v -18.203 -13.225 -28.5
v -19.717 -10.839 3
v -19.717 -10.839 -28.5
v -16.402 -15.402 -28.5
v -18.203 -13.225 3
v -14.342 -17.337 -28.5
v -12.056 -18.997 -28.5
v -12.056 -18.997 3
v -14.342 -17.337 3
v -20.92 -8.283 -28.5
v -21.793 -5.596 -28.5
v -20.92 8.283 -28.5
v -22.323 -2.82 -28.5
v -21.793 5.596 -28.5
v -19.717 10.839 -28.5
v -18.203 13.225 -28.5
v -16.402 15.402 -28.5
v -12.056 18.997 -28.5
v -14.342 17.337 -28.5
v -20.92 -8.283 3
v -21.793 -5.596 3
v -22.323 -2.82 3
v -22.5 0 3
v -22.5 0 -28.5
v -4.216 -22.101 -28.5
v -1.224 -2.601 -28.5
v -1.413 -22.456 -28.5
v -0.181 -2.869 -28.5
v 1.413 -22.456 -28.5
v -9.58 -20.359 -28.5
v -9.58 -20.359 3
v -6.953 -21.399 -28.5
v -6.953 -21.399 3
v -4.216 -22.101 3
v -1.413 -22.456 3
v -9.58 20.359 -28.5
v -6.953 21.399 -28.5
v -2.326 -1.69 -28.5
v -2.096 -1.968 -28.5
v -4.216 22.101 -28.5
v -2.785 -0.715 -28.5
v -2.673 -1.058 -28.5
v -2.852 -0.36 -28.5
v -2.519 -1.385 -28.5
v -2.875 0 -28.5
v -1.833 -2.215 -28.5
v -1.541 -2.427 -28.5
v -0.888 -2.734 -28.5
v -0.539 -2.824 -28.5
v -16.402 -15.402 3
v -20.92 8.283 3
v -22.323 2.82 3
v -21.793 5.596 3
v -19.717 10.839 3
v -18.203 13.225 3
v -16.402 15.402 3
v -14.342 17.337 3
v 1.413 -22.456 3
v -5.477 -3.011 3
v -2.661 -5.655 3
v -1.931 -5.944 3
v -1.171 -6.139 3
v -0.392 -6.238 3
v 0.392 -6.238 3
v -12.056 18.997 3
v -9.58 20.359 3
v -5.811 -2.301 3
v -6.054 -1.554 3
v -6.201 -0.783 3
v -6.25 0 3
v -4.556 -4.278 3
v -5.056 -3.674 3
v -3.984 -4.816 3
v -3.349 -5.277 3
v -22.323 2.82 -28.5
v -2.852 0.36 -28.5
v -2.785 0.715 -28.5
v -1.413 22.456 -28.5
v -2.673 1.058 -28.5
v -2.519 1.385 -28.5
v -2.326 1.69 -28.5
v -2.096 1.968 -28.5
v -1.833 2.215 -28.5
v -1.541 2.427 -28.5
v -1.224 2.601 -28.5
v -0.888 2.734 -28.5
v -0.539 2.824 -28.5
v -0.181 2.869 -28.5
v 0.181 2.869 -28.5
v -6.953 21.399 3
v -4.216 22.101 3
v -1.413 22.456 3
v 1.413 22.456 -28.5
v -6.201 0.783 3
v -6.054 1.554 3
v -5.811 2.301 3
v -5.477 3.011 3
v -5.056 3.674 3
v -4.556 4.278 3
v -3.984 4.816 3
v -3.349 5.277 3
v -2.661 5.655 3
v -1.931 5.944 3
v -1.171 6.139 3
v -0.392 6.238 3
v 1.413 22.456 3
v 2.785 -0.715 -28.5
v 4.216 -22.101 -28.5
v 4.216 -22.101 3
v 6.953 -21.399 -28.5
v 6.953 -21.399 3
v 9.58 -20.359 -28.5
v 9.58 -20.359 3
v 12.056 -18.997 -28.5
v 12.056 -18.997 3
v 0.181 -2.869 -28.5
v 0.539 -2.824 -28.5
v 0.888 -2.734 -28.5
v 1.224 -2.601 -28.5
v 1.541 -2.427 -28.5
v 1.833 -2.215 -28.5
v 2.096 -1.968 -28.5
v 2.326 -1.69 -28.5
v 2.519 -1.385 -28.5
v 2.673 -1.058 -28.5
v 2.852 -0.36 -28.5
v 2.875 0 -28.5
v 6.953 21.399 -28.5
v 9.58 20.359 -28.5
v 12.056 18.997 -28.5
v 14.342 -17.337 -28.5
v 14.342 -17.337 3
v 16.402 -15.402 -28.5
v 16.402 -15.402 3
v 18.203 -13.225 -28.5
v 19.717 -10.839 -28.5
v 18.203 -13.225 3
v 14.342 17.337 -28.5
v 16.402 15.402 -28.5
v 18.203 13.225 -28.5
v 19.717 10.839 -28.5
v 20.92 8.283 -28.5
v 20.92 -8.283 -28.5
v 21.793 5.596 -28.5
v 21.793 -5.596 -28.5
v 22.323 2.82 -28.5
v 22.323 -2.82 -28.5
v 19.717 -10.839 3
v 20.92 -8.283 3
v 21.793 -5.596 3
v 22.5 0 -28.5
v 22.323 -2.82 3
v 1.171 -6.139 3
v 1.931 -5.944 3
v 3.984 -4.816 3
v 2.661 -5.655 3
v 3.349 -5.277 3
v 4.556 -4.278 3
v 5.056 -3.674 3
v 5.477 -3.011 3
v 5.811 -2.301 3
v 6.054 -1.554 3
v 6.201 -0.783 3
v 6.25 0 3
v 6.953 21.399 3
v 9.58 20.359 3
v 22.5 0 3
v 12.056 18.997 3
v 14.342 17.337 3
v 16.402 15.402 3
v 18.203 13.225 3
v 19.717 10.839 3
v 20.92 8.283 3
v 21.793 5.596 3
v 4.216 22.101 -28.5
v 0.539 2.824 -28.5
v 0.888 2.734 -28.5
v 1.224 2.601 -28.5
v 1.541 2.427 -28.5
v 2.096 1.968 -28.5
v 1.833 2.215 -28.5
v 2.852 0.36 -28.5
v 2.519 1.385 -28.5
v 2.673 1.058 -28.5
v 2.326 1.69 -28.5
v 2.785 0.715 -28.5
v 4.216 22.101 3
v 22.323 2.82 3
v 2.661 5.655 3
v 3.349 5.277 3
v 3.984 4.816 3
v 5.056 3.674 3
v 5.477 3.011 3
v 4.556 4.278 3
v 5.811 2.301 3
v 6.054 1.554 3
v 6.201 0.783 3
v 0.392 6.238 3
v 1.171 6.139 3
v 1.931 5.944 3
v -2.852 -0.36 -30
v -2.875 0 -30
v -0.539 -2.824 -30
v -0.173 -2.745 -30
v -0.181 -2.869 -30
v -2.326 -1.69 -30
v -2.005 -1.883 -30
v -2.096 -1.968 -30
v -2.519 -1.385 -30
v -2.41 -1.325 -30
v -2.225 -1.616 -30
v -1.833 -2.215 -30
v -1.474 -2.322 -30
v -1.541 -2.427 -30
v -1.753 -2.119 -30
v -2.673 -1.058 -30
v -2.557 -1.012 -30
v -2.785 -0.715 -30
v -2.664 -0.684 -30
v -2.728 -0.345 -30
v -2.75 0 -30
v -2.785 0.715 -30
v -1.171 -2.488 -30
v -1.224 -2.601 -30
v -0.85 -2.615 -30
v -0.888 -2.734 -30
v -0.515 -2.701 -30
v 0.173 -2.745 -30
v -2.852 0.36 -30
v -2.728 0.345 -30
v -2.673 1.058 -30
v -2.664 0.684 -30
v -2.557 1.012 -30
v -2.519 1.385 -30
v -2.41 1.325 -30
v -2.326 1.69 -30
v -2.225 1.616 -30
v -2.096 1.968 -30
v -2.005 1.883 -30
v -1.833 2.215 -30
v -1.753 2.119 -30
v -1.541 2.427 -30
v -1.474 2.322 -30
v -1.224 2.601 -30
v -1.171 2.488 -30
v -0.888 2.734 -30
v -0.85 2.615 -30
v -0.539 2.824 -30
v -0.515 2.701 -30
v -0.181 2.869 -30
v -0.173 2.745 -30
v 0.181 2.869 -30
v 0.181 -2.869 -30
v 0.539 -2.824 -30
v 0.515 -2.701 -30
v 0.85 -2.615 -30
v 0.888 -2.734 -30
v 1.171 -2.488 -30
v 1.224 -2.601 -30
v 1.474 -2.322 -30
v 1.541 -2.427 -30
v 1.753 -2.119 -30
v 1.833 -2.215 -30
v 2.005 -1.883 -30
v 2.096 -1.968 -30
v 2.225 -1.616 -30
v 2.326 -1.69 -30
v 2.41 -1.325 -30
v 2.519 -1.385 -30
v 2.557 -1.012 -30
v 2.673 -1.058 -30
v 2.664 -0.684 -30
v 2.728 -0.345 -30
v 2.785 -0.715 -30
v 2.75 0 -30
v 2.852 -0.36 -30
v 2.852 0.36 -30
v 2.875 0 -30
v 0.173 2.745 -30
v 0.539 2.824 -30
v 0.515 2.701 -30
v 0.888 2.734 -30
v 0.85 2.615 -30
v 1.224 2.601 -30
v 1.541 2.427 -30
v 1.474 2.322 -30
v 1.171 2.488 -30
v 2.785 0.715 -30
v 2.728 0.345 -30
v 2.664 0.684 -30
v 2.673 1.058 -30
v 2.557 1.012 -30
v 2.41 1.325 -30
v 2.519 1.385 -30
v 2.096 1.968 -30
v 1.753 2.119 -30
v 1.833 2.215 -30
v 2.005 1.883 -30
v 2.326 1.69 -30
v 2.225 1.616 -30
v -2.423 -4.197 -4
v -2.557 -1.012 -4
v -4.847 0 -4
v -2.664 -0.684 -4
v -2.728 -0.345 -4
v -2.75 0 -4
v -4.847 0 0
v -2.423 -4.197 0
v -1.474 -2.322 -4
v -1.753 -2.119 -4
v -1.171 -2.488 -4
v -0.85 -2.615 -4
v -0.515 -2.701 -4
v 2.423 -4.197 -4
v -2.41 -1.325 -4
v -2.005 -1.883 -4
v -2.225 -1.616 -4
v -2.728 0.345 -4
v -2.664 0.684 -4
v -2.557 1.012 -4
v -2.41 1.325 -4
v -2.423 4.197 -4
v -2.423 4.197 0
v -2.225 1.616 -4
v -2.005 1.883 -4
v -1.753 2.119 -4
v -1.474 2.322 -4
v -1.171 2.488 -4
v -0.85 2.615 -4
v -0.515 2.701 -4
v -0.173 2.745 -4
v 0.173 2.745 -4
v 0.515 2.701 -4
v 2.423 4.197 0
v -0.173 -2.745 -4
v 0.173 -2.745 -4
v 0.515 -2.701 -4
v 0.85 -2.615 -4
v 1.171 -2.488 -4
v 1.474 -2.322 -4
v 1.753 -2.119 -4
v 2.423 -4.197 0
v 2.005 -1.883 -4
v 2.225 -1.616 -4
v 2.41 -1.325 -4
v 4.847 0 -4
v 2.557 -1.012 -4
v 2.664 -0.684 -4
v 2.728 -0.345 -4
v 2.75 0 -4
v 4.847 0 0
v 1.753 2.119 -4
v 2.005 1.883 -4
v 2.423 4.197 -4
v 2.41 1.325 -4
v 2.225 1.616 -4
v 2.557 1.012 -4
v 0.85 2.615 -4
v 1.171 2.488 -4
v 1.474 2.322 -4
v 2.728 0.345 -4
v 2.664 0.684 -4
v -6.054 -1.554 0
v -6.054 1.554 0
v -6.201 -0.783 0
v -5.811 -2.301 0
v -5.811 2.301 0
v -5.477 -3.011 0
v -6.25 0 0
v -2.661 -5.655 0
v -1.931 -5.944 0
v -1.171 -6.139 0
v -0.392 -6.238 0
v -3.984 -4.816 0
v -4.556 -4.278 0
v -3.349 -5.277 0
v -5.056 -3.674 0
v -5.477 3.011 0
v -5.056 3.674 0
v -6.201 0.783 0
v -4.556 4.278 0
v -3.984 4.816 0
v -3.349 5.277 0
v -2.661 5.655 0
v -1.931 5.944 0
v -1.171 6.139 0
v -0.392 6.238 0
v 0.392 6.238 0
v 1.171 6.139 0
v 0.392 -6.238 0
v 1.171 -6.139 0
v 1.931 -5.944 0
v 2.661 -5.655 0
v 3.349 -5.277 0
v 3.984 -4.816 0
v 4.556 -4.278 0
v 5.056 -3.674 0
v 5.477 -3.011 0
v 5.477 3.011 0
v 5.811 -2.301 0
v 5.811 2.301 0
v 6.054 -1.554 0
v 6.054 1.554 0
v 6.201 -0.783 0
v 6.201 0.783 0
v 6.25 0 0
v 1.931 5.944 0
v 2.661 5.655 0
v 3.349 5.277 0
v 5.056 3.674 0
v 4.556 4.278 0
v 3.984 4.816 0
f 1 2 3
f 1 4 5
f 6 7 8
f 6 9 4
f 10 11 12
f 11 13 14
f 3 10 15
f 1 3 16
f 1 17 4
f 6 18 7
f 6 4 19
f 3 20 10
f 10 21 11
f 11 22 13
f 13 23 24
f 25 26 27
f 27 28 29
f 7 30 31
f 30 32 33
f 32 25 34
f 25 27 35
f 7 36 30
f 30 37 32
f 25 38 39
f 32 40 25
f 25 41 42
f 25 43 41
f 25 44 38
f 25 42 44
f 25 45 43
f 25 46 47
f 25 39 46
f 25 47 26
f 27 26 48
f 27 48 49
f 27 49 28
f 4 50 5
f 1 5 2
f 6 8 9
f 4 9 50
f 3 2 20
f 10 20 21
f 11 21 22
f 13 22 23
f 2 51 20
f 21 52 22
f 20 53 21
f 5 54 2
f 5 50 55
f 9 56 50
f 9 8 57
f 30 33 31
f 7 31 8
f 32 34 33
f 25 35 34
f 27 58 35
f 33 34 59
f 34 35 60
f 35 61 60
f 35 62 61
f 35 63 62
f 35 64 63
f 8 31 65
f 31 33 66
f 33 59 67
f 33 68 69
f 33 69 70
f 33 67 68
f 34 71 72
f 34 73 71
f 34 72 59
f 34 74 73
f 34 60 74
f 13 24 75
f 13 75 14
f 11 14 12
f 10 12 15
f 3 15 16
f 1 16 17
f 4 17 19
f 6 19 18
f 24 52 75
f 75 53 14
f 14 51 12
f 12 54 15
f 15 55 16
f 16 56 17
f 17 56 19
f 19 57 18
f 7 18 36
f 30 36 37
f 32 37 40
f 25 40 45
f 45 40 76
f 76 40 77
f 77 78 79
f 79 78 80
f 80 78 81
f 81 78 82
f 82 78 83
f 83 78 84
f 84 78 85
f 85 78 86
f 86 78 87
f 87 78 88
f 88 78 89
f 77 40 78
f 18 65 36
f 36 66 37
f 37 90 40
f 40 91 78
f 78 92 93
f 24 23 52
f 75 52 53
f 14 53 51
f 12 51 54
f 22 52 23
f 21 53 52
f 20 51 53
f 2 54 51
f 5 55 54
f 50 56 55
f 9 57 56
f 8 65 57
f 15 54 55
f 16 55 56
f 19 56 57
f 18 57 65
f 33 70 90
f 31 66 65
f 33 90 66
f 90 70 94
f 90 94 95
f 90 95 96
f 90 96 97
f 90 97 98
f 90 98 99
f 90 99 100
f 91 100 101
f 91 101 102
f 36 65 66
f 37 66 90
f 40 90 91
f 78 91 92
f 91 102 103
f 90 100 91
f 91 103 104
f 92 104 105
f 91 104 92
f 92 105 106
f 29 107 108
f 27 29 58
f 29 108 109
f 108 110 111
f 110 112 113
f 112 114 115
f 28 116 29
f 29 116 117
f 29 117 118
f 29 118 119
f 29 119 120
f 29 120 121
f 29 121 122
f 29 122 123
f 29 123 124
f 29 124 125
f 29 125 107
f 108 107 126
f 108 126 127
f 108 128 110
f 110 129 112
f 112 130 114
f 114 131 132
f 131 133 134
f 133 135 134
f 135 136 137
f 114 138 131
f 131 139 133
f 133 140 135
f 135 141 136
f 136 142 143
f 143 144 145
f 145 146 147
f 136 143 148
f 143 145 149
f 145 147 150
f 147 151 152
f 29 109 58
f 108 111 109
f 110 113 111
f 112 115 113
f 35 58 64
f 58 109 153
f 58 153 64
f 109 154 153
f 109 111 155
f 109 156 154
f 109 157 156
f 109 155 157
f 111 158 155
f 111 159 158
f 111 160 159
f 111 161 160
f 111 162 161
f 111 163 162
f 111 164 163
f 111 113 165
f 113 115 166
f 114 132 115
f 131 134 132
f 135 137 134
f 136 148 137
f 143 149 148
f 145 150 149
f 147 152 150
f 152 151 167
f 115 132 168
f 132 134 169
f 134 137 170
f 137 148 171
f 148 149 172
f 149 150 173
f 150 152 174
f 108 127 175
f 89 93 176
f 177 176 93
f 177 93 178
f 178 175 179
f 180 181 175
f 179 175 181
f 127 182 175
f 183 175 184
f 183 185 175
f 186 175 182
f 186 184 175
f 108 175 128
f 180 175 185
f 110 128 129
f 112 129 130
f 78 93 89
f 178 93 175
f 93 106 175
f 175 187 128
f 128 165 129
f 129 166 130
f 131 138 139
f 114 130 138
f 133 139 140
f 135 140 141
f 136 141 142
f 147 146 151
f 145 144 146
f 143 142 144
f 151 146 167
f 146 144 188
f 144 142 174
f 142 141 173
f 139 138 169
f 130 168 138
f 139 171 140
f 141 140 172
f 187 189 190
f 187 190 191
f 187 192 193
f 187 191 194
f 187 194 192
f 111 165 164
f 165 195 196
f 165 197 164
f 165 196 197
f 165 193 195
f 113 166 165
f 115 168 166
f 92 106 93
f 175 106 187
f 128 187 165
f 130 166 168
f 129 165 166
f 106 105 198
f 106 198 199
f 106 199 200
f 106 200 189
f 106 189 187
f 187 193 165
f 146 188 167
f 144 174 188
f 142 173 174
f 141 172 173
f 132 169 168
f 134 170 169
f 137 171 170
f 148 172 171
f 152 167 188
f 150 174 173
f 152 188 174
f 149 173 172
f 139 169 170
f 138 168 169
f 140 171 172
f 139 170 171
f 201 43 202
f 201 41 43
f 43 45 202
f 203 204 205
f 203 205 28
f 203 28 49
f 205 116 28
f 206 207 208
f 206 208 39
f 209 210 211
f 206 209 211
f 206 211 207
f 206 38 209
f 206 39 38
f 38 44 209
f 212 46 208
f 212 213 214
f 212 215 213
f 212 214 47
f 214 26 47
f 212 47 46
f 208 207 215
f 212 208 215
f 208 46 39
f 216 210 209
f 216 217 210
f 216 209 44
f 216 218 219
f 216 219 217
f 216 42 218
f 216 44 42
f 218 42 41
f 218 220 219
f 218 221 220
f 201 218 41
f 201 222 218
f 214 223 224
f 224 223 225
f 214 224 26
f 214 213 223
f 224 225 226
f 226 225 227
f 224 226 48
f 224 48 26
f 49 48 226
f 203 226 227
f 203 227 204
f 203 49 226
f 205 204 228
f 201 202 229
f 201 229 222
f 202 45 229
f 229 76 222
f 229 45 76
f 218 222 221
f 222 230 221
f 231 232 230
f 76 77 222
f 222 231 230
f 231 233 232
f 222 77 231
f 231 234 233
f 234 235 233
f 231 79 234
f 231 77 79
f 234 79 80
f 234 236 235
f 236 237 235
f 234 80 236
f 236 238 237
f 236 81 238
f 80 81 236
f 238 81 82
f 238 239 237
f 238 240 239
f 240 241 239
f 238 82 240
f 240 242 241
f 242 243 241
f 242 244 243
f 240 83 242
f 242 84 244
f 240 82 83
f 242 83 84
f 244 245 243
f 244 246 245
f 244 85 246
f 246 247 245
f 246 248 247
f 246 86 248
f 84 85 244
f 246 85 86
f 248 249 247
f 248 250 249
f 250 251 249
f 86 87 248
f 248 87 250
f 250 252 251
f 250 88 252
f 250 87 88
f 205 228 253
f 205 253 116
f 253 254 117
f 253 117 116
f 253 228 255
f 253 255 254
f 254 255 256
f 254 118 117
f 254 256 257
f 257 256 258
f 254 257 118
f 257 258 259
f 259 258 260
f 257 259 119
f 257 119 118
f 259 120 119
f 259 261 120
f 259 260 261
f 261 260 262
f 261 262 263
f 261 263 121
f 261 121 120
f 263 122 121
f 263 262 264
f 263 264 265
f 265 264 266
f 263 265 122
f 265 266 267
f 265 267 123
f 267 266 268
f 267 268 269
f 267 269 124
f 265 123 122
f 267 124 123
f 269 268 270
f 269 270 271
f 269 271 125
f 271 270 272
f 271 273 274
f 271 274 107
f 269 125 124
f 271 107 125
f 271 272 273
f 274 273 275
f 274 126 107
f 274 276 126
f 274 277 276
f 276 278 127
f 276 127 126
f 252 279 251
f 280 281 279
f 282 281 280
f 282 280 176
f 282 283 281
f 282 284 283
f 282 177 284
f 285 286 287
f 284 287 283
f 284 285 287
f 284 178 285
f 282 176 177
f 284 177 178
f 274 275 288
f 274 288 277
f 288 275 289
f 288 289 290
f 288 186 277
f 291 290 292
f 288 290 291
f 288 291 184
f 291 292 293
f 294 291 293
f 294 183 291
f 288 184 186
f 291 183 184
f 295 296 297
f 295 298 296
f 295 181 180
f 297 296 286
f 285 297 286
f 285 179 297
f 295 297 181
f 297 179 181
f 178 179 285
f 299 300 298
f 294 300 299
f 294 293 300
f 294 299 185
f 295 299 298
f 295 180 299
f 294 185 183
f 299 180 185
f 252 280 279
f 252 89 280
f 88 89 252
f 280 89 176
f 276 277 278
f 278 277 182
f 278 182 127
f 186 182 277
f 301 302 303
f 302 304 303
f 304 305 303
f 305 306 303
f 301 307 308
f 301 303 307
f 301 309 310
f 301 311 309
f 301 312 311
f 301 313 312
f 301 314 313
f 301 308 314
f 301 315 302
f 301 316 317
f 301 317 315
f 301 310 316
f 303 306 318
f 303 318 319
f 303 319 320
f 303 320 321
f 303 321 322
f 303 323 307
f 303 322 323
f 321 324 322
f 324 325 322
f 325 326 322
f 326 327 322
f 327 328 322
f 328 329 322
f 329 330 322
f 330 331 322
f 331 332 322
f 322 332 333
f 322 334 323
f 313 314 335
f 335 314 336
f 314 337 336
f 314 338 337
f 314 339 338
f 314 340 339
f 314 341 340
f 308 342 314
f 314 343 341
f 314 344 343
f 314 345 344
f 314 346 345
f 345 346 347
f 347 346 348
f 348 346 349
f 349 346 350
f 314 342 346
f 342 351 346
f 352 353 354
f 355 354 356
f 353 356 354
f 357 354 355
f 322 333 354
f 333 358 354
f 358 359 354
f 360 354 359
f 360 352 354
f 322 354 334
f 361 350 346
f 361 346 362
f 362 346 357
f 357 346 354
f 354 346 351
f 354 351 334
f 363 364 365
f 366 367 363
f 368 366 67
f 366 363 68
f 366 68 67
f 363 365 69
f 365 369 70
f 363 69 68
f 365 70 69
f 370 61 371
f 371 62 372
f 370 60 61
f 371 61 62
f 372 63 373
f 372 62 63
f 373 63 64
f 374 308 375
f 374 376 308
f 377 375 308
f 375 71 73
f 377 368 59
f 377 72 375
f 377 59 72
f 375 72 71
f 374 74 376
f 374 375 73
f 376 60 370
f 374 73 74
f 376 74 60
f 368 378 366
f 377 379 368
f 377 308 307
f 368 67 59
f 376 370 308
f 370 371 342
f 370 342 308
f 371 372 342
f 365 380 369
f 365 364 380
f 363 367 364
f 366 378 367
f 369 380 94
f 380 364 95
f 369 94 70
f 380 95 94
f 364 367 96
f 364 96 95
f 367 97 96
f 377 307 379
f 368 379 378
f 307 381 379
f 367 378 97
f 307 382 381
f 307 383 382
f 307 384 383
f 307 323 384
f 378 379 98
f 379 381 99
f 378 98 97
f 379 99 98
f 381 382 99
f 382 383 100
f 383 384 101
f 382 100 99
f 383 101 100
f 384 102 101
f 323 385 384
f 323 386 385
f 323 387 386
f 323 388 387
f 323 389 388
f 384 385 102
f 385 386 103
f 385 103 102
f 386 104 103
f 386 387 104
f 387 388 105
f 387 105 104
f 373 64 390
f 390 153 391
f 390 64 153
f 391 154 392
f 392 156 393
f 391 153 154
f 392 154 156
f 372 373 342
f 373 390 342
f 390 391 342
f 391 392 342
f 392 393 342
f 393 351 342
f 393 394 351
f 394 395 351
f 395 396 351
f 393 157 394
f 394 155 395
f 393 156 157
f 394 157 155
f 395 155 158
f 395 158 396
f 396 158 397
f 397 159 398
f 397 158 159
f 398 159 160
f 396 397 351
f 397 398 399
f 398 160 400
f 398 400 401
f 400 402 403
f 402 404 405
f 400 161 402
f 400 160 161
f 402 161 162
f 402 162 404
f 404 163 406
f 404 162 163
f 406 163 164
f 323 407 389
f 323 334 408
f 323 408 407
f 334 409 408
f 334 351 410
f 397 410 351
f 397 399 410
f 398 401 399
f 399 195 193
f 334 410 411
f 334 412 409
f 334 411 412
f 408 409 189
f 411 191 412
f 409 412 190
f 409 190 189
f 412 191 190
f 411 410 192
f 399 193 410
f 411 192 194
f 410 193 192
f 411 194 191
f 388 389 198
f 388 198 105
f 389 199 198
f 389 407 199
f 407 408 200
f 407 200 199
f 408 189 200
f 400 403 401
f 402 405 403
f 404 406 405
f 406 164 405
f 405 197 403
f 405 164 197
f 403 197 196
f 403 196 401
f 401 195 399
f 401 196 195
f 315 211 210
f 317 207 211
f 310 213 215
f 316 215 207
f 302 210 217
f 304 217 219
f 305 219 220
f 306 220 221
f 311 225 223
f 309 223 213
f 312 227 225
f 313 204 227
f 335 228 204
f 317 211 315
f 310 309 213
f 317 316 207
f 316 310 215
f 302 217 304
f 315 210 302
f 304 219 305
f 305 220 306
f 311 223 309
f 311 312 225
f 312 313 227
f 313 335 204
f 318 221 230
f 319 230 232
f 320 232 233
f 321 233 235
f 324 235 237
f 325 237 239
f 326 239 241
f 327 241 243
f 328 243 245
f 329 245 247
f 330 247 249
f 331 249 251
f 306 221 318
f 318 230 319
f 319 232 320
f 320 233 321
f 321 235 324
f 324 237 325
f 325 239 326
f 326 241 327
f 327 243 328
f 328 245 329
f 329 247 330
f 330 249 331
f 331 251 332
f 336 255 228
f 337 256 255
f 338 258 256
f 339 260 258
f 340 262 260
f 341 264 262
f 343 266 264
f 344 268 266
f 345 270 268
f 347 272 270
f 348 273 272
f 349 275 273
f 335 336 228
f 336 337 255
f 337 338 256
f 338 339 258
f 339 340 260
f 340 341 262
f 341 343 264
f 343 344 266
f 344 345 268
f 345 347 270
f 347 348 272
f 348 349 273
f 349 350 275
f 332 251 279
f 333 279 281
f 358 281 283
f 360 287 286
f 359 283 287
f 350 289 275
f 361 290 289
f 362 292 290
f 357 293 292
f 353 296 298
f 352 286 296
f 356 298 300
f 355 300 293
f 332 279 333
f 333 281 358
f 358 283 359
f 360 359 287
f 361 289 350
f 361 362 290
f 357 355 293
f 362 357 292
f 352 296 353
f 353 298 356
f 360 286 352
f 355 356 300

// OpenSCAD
$fn = 50;

difference() {
	union() {
		translate(v = [0, 0, -28.5]) {
			cylinder(h = 31.5, r = 22.5);
		}
		#translate(v = [0, 0, -30.0]) {
			cylinder(h = 30, r = 2.875);
		}
	}
	union() {
		translate(v = [0, 0, 0]) {
			rotate(a = [0, 0, 0]) {
				difference() {
					union() {
						translate(v = [0, 0, -4]) {
							linear_extrude(height = 4) {
								polygon(points = [[4.8468, 0.0], [2.4234000000000004, 4.197451927062417], [-2.423399999999999, 4.197451927062417], [-4.8468, 5.935618106107392e-16], [-2.423400000000002, -4.197451927062416], [2.423399999999997, -4.197451927062419]]);
							}
						}
					}
					union();
				}
			}
		}
		#cylinder(h = 3, r = 6.25);
		#translate(v = [0, 0, -100.0]) {
			cylinder(h = 200, r = 2.75);
		}
	}
}
